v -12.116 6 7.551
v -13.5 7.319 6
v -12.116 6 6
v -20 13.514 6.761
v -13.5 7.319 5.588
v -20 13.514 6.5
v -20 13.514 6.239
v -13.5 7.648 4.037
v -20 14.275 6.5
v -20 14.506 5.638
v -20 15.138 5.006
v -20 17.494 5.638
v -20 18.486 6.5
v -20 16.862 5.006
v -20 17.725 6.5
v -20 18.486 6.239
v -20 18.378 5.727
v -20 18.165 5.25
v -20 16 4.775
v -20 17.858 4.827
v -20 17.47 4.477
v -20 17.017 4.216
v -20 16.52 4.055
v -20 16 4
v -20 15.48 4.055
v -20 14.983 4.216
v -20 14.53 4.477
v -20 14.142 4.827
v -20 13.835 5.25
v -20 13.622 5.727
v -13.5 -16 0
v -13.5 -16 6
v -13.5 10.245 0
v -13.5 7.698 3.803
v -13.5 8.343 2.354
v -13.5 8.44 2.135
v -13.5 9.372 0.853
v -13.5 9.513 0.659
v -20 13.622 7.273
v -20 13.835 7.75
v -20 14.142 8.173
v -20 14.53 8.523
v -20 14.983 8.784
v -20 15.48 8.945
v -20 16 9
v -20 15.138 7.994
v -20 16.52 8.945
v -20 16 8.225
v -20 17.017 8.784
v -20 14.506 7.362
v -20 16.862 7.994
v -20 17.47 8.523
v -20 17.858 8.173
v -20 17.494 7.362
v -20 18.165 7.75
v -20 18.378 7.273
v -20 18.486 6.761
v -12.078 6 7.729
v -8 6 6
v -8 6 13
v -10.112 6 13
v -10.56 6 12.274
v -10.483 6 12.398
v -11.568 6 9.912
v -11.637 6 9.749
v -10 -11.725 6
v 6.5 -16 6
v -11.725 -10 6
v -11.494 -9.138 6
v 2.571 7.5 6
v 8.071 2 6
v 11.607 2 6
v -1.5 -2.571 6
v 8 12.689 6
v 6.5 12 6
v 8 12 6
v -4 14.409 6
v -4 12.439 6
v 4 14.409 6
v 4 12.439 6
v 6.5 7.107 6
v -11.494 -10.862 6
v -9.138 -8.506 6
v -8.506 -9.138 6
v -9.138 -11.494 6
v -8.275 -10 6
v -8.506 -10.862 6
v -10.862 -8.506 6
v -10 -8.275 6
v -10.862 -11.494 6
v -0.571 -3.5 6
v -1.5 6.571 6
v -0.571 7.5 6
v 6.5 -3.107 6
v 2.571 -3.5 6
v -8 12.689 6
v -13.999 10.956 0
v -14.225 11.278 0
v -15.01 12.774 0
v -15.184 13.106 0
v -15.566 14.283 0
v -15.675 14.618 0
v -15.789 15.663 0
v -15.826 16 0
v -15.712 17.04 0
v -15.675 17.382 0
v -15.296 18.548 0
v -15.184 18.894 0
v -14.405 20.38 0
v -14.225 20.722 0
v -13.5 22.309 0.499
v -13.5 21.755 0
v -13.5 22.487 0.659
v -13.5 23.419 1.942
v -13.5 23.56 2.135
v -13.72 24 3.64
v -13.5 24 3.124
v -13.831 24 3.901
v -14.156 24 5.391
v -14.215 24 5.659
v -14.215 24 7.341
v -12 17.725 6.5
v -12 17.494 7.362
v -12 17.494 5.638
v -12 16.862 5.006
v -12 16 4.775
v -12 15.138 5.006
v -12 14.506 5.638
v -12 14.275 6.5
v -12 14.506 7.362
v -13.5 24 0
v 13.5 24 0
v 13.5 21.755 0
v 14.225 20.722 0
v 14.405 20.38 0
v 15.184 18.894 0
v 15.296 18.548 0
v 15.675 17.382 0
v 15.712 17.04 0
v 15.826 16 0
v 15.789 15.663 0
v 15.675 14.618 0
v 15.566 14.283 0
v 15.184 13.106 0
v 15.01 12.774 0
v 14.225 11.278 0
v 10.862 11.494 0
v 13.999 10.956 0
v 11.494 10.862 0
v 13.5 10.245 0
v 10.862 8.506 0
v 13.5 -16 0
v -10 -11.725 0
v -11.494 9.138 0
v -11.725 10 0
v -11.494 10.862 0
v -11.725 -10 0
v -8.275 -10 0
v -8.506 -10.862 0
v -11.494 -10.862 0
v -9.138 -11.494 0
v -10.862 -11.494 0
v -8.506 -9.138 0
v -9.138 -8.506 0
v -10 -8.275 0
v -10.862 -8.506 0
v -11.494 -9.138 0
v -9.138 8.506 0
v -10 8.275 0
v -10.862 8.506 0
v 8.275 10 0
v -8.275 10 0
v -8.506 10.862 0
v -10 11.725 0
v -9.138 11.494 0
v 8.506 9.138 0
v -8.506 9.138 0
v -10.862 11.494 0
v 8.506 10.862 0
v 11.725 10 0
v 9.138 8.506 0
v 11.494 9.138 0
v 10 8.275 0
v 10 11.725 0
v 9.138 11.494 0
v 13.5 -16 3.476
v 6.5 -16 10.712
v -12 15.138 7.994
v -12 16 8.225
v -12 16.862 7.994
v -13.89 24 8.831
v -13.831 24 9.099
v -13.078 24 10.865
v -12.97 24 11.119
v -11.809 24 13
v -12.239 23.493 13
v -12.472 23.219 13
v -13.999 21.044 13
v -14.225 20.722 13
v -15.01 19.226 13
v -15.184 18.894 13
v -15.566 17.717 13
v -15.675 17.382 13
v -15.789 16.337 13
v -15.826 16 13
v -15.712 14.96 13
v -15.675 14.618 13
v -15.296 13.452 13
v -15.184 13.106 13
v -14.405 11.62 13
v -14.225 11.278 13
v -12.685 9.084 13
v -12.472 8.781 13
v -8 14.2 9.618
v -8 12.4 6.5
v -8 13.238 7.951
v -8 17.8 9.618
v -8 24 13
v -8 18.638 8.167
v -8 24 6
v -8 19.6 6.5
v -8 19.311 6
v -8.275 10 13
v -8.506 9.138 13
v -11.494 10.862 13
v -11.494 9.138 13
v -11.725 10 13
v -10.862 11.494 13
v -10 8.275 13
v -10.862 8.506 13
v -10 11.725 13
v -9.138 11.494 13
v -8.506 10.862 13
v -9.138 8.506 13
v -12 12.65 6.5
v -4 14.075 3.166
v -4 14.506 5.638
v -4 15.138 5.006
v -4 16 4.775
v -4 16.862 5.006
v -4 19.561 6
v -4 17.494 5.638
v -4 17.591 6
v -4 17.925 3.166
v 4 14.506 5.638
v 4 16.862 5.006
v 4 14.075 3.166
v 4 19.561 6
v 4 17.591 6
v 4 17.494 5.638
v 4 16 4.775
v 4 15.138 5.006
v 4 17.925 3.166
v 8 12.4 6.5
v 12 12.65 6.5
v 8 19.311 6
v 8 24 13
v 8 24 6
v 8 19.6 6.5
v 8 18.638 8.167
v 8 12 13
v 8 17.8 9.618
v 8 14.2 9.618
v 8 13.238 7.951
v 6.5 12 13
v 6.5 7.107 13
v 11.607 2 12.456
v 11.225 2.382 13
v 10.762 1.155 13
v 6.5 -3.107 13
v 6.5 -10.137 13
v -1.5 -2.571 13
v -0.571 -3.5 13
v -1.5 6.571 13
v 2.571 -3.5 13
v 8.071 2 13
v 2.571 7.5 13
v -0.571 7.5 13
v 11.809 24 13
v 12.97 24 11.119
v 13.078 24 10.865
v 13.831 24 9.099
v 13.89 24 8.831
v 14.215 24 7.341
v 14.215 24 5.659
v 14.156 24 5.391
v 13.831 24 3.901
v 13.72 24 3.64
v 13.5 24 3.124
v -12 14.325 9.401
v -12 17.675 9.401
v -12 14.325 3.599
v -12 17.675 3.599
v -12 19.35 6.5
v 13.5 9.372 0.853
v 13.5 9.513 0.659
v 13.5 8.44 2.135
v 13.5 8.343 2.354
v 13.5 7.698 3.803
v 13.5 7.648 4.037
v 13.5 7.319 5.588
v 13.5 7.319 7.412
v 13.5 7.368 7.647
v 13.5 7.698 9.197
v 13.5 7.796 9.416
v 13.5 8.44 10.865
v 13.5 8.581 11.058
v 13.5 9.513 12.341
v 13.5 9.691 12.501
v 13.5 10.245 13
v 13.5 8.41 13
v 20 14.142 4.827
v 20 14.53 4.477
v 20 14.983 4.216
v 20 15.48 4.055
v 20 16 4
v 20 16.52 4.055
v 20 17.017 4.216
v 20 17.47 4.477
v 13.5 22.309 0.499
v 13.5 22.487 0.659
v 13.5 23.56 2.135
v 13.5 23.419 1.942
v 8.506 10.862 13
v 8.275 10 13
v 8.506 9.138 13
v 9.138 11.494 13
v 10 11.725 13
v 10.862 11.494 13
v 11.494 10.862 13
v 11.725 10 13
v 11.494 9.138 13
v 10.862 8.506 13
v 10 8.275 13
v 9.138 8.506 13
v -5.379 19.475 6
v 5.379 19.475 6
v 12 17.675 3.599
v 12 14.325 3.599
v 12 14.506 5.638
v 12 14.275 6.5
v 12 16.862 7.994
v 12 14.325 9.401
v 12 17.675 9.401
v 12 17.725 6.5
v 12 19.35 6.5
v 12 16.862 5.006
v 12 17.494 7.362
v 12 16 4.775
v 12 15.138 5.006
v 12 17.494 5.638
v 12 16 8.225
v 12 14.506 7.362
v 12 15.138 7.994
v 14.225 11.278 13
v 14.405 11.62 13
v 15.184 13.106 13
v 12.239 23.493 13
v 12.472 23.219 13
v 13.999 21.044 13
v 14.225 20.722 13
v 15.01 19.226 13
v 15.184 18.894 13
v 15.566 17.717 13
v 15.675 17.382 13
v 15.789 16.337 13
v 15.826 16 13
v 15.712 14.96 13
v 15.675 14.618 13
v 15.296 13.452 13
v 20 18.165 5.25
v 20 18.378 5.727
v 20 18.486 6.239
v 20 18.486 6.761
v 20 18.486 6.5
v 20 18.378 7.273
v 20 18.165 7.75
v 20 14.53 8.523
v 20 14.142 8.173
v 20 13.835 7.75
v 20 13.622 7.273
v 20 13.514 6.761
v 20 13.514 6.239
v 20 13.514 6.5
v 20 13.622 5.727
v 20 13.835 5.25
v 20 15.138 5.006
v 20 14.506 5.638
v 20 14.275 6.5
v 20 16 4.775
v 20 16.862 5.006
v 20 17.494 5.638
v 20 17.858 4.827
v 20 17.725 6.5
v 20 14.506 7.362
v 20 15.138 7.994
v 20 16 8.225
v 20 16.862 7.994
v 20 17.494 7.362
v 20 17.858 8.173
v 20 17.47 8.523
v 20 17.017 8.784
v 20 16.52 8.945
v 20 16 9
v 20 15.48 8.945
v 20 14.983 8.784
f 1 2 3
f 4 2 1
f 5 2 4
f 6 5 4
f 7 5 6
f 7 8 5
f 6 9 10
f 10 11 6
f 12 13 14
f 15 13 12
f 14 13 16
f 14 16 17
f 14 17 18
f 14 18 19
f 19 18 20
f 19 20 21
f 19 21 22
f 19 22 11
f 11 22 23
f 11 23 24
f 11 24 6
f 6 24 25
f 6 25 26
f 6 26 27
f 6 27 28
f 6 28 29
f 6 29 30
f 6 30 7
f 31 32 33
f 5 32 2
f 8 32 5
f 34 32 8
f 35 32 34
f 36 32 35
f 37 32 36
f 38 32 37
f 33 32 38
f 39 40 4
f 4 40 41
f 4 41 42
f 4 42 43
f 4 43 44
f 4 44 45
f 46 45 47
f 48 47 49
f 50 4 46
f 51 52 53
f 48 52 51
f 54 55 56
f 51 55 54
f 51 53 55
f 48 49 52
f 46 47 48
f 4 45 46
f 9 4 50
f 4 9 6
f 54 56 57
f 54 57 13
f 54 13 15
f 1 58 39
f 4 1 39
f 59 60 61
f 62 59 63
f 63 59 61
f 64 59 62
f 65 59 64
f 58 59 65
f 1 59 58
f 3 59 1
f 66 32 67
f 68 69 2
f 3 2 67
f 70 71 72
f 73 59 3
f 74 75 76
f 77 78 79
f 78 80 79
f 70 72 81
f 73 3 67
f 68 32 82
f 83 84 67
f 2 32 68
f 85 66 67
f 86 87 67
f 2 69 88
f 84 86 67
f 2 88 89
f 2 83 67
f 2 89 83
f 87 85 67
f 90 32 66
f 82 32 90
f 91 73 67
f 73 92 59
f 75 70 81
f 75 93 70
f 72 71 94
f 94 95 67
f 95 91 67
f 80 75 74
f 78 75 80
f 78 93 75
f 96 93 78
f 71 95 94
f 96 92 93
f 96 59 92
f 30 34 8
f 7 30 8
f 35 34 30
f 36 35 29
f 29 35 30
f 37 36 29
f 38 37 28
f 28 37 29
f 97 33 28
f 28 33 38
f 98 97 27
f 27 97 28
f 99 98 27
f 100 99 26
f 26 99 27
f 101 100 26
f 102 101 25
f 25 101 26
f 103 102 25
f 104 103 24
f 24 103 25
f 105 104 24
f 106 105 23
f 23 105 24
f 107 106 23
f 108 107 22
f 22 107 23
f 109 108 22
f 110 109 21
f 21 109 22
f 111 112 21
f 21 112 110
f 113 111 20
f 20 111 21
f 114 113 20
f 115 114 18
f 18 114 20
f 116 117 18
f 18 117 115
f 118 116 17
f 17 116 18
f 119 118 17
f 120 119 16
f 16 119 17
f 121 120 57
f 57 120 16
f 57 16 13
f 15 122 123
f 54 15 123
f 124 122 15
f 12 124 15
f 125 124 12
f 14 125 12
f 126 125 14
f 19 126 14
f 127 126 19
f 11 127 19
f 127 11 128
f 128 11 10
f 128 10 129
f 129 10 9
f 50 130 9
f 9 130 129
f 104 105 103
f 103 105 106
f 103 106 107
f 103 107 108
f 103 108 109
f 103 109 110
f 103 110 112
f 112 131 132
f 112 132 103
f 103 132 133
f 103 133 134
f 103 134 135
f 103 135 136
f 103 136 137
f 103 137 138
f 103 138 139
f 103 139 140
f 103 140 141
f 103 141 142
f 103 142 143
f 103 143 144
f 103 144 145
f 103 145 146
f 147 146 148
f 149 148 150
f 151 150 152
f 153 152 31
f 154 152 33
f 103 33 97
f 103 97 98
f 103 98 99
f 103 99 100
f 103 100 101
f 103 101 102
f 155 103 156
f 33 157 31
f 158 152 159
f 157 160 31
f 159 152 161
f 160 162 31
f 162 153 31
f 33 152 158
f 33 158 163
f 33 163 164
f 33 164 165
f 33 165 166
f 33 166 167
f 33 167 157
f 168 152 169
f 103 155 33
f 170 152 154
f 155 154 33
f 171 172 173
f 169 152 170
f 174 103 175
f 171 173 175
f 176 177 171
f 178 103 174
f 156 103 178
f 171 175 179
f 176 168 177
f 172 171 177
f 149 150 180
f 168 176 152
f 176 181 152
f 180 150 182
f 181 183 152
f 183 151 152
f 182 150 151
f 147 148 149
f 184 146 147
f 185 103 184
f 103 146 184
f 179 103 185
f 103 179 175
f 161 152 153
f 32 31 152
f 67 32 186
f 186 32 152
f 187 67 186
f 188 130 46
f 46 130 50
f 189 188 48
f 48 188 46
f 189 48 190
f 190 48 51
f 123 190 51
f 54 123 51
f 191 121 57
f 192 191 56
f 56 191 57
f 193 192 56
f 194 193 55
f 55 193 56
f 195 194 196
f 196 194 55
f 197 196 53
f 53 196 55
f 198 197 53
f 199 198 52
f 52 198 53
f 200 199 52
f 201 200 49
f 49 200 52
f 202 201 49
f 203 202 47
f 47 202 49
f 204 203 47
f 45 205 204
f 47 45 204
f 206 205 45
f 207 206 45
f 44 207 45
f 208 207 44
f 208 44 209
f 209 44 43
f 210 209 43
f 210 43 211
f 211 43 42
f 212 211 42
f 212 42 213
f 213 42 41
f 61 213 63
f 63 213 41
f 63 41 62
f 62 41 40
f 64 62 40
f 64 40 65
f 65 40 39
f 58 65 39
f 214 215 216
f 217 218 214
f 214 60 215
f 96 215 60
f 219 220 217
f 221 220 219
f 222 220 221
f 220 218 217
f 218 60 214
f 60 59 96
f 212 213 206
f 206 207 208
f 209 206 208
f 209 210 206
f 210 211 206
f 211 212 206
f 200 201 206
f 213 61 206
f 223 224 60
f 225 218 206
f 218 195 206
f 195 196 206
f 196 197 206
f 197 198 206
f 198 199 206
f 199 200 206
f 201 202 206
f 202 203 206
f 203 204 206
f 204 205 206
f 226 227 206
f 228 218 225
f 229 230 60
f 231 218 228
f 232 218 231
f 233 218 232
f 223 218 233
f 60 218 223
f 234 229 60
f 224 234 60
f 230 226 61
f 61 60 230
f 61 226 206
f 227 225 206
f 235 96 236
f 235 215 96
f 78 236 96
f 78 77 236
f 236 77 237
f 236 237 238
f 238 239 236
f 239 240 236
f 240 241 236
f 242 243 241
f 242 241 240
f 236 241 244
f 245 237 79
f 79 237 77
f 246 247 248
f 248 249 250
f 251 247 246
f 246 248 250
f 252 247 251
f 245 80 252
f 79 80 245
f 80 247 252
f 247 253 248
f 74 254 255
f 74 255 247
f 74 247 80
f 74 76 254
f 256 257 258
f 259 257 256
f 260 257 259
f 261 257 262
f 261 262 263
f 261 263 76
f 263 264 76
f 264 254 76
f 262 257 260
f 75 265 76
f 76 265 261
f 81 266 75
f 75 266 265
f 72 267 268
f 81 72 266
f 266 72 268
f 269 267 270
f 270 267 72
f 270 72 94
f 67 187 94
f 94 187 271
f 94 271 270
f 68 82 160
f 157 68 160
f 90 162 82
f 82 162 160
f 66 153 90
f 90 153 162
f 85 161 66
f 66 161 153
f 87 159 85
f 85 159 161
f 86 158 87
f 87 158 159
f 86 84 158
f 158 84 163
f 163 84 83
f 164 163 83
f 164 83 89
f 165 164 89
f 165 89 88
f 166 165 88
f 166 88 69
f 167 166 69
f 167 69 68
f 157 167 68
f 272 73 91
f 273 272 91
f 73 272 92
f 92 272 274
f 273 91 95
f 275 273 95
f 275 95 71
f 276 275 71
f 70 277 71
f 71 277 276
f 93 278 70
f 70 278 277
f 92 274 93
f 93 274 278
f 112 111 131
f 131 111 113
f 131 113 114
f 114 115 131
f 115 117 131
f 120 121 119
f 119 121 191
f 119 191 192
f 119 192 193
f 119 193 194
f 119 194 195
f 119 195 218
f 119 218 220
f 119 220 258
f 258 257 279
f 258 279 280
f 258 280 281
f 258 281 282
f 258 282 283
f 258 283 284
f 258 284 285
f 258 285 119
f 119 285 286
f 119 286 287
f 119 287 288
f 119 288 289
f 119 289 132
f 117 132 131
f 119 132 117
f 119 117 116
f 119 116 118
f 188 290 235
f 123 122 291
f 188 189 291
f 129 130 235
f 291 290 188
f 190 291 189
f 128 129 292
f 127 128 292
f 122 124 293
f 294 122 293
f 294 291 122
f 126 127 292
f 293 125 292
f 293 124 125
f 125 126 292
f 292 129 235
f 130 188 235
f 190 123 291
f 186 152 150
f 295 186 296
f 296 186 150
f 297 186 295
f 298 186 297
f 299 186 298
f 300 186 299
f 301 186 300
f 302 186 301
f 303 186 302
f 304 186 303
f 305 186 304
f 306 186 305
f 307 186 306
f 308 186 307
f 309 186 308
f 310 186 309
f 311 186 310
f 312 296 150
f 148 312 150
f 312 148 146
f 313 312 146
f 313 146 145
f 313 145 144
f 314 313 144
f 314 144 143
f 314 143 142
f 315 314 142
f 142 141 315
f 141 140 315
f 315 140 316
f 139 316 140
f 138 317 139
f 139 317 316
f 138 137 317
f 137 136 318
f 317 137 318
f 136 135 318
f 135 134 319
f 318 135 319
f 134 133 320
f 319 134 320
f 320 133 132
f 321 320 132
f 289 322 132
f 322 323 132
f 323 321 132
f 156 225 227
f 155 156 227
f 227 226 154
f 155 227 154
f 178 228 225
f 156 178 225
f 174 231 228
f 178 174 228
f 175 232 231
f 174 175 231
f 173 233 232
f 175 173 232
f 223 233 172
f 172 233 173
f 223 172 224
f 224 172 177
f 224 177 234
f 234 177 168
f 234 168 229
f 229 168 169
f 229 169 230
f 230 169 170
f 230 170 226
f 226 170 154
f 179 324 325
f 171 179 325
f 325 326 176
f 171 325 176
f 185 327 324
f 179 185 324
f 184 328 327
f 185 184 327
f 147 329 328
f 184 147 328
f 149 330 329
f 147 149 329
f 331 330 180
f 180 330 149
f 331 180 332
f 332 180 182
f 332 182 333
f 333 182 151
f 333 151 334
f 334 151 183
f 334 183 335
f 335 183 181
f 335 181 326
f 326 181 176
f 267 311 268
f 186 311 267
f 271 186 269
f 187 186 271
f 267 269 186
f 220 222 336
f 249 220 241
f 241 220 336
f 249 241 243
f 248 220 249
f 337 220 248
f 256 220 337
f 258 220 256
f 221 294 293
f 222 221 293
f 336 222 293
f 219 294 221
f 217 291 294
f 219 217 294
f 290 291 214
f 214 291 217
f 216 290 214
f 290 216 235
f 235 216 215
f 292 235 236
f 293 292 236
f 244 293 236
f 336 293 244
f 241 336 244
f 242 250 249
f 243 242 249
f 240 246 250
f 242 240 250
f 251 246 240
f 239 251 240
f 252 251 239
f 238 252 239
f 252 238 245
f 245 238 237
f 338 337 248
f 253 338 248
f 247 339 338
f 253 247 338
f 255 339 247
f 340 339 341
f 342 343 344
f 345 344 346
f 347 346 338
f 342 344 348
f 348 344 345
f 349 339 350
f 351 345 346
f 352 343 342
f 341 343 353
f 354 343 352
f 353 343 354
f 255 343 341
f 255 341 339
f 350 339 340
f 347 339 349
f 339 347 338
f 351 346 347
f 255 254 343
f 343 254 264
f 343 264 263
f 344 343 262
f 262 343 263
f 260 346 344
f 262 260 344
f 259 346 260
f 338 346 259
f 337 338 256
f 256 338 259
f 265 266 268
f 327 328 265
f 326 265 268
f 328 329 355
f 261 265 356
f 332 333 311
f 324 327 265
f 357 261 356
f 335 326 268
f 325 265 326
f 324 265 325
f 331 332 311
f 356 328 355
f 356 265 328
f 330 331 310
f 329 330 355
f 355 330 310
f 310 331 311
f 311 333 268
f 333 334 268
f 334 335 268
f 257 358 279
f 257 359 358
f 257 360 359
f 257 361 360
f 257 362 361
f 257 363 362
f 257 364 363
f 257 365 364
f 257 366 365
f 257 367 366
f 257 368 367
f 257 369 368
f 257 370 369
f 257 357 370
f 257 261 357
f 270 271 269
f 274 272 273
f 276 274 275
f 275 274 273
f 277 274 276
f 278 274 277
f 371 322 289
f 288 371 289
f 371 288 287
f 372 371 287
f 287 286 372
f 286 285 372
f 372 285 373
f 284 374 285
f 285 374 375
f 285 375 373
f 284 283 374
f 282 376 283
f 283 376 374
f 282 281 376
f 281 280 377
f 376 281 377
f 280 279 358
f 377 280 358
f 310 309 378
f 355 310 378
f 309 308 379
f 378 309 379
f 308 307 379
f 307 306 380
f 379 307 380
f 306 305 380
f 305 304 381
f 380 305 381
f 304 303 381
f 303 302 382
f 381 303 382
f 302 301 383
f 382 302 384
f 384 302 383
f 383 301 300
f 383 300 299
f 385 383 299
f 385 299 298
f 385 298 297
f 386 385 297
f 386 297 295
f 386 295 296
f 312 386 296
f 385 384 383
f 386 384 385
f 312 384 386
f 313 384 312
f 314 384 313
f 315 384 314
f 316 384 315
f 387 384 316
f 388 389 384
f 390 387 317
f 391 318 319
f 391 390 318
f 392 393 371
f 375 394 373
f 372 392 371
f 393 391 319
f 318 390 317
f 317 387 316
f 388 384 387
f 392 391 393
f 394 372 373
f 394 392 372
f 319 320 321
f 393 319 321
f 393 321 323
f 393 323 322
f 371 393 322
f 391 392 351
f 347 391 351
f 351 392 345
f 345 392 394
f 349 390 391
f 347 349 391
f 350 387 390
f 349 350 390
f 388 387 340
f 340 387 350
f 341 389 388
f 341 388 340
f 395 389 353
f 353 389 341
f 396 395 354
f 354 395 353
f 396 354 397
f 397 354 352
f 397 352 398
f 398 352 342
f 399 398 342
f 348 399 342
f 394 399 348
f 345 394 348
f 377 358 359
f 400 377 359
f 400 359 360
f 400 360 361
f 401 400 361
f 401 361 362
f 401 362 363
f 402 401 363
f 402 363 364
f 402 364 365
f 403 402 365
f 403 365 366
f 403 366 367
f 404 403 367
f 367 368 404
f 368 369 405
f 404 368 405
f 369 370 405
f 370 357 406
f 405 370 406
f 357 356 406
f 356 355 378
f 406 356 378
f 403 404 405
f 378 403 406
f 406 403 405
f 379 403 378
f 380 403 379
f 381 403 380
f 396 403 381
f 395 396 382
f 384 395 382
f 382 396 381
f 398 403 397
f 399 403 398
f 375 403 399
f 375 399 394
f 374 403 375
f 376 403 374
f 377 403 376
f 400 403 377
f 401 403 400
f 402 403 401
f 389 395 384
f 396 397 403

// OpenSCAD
// file: configuration.scad
// Increase this if your slicer or printer make holes too tight.
extra_radius = 0.1;

// OD = outside diameter, corner to corner.
m3_nut_od = 6.1;
m3_nut_radius = m3_nut_od/2 + 0.2 + extra_radius;

// Major diameter of metric 3mm thread.
m3_major = 2.85;
m3_radius = m3_major/2 + extra_radius;
m3_wide_radius = m3_major/2 + extra_radius + 0.2;

// NEMA17 stepper motors.
motor_shaft_diameter = 5;
motor_shaft_radius = motor_shaft_diameter/2 + extra_radius;

// Frame brackets.
thickness = 3.6;
// main file
include <configuration.scad>;

separation = 40;
thickness = 6;

horn_thickness = 13;
horn_x = 8;

belt_width = 5;
belt_x = 5.6;
belt_z = 7;

module carriage() {
  // Timing belt (up and down).
  translate([-belt_x, 0, belt_z + belt_width/2]) %
    cube([1.7, 100, belt_width], center=true);
  translate([belt_x, 0, belt_z + belt_width/2]) %
    cube([1.7, 100, belt_width], center=true);
  difference() {
    union() {
      // Main body.
      translate([0, 4, thickness/2])
        cube([27, 40, thickness], center=true);
      // Ball joint mount horns.
      for (x = [-1, 1]) {
        scale([x, 1, 1]) intersection() {
          translate([0, 15, horn_thickness/2])
            cube([separation, 18, horn_thickness], center=true);
          translate([horn_x, 16, horn_thickness/2]) rotate([0, 90, 0])
            cylinder(r1=14, r2=2.5, h=separation/2-horn_x);
        }
      }
      // Belt clamps.
      intersection() {
         translate([5, 2, thickness + belt_width/2])
           cube([13, 11, belt_width+4], center=true);
         translate([1, 2, thickness + belt_width/2]) rotate([0, 0, 45])
           cube([10, 10, 20], center=true);
      }
      difference() {
        translate([10, -2, thickness + belt_width/2])
          cube([7, 28, belt_width+4], center=true);
         translate([1, 2, thickness + belt_width/2]) rotate([0, 0, 45])
           cube([15, 15, 20], center=true);
      }
    }
    // Avoid touching diagonal push rods (carbon tube).
    translate([20, -10, 14]) rotate([35, 35, 30])
      cube([40, 40, 20], center=true);
    // Screws for linear slider.
    for (x = [-10, 10]) {
      translate([x, 10, thickness]) #
        cylinder(r=m3_wide_radius, h=30, center=true, $fn=12);
    }
    translate([-10, -10, thickness]) #
      cylinder(r=m3_wide_radius, h=30, center=true, $fn=12);
    // Screws for ball joints.
    translate([0, 16, horn_thickness/2]) rotate([0, 90, 0]) #
      cylinder(r=m3_wide_radius, h=60, center=true, $fn=12);
    // Lock nuts for ball joints.
    for (x = [-1, 1]) {
      scale([x, 1, 1]) intersection() {
        translate([horn_x, 16, horn_thickness/2]) rotate([90, 0, -90])
          cylinder(r1=m3_nut_radius, r2=m3_nut_radius+0.5, h=8,
                   center=true, $fn=6);
      }
    }
  }
}

carriage();
